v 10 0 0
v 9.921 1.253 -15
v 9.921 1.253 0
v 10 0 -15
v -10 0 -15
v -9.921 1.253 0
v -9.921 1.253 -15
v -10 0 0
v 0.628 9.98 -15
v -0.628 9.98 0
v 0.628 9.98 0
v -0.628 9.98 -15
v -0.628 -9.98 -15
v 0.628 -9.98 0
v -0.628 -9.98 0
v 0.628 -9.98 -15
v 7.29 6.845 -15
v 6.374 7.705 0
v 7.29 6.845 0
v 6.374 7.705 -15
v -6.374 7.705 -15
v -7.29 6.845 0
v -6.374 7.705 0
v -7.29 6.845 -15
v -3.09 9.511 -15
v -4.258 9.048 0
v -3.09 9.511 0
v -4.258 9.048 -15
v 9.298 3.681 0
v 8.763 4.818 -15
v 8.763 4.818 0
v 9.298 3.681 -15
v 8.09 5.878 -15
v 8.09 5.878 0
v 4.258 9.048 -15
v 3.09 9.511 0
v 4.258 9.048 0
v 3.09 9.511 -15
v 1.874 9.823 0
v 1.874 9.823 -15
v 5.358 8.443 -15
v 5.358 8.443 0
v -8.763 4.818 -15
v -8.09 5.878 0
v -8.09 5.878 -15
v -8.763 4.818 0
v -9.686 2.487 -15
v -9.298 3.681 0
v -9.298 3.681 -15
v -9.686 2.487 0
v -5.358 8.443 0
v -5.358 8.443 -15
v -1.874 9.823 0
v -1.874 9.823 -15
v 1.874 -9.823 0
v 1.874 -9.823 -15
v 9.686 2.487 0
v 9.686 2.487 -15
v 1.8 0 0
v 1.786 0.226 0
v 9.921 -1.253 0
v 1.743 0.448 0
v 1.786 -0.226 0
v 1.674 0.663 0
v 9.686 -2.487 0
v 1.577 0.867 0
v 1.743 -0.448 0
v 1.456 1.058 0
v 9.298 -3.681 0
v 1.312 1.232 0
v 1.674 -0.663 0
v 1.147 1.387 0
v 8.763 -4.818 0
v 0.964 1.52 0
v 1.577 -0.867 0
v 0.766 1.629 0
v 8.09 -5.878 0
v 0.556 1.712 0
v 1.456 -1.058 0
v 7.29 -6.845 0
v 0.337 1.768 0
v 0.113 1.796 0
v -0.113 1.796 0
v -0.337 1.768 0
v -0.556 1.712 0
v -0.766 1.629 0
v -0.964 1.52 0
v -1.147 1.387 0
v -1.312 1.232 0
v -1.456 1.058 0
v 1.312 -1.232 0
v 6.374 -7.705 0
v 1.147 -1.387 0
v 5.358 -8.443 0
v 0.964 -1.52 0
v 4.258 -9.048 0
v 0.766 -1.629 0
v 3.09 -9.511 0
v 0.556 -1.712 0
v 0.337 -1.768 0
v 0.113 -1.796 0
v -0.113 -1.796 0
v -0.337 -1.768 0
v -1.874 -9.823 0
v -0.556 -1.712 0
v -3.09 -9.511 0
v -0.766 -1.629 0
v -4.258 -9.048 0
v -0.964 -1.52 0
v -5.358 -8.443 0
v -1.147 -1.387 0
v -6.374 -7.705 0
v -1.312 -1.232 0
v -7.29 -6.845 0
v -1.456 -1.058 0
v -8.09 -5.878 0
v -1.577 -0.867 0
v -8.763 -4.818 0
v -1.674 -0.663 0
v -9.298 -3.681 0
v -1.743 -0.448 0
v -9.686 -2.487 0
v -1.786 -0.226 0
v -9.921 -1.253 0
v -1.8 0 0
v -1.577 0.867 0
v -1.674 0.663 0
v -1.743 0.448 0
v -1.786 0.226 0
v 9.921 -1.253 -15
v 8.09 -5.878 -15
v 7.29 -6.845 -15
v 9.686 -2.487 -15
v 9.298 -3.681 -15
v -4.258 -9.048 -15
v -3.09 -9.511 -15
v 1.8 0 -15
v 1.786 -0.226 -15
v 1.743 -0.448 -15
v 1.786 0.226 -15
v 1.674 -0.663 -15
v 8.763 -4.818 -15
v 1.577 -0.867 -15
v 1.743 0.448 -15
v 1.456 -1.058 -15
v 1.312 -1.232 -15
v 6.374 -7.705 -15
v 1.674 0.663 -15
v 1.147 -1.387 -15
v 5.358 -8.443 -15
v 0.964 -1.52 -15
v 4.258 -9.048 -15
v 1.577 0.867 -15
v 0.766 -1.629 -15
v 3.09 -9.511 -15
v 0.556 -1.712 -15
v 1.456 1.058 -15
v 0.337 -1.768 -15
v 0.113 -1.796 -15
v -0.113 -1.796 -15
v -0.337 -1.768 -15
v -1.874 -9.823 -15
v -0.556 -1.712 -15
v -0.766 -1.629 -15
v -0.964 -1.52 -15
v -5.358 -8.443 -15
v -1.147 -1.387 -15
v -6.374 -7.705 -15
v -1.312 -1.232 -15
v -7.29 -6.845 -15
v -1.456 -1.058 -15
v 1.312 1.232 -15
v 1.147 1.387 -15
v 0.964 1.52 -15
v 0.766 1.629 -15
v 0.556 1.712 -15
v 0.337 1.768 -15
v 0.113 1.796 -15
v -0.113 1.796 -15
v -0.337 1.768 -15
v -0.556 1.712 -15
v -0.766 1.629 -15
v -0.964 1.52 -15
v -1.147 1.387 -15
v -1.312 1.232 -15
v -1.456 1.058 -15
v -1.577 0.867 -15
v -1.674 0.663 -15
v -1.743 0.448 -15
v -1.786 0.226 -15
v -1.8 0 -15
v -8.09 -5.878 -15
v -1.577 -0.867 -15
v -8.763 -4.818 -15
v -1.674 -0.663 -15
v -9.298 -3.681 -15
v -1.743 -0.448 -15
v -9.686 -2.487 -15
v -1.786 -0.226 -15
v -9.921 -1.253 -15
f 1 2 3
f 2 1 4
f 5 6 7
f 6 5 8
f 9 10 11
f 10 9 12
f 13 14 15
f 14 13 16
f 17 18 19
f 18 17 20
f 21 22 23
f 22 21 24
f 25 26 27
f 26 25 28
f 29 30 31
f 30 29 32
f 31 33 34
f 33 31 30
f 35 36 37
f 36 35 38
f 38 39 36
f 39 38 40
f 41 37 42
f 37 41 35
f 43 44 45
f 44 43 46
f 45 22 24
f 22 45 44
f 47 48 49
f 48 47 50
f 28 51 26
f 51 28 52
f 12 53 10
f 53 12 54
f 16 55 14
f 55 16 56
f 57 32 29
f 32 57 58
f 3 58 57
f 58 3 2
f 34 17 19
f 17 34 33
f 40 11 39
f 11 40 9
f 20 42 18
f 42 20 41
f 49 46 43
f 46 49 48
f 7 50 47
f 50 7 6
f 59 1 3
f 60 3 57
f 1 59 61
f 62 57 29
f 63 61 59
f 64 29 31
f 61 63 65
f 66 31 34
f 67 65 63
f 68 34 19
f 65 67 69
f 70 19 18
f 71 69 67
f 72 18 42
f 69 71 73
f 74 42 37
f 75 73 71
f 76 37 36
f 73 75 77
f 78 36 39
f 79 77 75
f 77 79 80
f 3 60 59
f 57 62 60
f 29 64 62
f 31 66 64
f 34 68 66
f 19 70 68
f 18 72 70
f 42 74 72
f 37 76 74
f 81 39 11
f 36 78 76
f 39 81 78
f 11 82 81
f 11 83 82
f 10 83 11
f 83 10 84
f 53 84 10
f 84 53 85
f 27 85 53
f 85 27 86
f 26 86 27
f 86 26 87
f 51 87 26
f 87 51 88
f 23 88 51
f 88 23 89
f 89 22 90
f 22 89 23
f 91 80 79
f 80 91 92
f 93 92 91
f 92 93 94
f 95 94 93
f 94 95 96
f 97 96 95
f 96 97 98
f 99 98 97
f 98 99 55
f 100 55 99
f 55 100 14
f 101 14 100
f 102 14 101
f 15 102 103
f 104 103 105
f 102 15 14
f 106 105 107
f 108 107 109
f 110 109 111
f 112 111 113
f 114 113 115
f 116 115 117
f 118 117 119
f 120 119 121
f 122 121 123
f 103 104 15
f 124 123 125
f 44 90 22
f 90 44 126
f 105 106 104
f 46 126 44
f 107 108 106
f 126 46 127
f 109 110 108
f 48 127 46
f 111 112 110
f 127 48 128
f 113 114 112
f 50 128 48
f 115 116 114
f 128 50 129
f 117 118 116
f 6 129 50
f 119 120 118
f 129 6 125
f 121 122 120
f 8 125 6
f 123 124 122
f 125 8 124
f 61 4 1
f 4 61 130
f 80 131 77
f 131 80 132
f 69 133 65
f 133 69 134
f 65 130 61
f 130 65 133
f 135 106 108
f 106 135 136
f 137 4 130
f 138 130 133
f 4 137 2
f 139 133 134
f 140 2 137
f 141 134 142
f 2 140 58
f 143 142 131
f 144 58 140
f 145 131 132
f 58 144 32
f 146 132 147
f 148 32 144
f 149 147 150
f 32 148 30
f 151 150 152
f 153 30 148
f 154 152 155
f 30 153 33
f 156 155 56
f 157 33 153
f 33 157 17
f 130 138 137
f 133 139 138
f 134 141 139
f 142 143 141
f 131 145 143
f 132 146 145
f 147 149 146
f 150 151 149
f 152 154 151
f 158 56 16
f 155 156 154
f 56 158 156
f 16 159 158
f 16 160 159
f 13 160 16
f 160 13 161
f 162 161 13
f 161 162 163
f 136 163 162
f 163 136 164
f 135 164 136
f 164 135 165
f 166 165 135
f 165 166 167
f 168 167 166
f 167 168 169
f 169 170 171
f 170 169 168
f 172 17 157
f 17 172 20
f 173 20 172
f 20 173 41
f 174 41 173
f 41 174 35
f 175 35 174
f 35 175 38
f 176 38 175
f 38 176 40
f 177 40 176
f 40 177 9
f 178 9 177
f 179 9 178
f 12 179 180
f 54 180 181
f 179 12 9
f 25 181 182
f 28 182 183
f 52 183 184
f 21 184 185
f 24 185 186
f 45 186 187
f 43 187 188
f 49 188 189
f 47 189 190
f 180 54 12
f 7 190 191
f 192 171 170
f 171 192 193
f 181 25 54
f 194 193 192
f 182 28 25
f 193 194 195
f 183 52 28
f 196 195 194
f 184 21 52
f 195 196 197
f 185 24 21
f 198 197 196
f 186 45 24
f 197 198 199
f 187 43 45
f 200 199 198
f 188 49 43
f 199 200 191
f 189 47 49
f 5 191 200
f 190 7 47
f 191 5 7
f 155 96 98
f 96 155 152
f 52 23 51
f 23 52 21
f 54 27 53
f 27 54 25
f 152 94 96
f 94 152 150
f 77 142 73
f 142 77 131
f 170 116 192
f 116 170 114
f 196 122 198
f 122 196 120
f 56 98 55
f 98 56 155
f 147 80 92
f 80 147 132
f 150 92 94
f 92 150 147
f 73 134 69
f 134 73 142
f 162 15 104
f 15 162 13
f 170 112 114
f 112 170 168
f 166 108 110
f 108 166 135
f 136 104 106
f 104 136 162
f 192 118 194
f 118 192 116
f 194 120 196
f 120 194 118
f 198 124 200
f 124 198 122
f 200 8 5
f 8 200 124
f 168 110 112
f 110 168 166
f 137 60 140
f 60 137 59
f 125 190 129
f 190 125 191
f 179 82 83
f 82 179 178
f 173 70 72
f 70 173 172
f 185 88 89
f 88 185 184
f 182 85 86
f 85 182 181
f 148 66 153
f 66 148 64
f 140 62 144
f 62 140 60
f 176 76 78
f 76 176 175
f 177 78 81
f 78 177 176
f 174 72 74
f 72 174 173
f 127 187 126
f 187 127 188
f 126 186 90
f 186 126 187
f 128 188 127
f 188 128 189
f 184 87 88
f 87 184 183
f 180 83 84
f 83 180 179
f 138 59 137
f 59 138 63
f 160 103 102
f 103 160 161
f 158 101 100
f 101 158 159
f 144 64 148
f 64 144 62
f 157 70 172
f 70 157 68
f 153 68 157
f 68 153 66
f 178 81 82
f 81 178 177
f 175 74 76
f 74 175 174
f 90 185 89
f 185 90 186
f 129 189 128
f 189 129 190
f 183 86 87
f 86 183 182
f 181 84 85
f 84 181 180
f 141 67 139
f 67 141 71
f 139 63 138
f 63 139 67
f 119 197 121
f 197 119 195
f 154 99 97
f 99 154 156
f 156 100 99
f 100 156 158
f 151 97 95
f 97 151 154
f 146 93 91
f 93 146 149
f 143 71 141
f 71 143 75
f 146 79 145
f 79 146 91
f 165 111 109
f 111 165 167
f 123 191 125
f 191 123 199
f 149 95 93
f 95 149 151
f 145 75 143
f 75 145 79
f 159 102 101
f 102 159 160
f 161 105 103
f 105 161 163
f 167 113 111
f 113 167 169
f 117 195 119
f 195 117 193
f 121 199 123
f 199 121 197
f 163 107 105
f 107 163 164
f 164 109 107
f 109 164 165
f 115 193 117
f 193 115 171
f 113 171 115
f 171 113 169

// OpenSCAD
$fn = 50;


difference() {
	union() {
		translate(v = [0, 0, -15.0000000000]) {
			cylinder(h = 15, r = 10.0000000000);
		}
		cylinder(h = 0, r = 19.0000000000);
	}
	union() {
		#translate(v = [0, 0, -15]) {
			cylinder(h = 15, r = 1.8000000000);
		}
	}
}
